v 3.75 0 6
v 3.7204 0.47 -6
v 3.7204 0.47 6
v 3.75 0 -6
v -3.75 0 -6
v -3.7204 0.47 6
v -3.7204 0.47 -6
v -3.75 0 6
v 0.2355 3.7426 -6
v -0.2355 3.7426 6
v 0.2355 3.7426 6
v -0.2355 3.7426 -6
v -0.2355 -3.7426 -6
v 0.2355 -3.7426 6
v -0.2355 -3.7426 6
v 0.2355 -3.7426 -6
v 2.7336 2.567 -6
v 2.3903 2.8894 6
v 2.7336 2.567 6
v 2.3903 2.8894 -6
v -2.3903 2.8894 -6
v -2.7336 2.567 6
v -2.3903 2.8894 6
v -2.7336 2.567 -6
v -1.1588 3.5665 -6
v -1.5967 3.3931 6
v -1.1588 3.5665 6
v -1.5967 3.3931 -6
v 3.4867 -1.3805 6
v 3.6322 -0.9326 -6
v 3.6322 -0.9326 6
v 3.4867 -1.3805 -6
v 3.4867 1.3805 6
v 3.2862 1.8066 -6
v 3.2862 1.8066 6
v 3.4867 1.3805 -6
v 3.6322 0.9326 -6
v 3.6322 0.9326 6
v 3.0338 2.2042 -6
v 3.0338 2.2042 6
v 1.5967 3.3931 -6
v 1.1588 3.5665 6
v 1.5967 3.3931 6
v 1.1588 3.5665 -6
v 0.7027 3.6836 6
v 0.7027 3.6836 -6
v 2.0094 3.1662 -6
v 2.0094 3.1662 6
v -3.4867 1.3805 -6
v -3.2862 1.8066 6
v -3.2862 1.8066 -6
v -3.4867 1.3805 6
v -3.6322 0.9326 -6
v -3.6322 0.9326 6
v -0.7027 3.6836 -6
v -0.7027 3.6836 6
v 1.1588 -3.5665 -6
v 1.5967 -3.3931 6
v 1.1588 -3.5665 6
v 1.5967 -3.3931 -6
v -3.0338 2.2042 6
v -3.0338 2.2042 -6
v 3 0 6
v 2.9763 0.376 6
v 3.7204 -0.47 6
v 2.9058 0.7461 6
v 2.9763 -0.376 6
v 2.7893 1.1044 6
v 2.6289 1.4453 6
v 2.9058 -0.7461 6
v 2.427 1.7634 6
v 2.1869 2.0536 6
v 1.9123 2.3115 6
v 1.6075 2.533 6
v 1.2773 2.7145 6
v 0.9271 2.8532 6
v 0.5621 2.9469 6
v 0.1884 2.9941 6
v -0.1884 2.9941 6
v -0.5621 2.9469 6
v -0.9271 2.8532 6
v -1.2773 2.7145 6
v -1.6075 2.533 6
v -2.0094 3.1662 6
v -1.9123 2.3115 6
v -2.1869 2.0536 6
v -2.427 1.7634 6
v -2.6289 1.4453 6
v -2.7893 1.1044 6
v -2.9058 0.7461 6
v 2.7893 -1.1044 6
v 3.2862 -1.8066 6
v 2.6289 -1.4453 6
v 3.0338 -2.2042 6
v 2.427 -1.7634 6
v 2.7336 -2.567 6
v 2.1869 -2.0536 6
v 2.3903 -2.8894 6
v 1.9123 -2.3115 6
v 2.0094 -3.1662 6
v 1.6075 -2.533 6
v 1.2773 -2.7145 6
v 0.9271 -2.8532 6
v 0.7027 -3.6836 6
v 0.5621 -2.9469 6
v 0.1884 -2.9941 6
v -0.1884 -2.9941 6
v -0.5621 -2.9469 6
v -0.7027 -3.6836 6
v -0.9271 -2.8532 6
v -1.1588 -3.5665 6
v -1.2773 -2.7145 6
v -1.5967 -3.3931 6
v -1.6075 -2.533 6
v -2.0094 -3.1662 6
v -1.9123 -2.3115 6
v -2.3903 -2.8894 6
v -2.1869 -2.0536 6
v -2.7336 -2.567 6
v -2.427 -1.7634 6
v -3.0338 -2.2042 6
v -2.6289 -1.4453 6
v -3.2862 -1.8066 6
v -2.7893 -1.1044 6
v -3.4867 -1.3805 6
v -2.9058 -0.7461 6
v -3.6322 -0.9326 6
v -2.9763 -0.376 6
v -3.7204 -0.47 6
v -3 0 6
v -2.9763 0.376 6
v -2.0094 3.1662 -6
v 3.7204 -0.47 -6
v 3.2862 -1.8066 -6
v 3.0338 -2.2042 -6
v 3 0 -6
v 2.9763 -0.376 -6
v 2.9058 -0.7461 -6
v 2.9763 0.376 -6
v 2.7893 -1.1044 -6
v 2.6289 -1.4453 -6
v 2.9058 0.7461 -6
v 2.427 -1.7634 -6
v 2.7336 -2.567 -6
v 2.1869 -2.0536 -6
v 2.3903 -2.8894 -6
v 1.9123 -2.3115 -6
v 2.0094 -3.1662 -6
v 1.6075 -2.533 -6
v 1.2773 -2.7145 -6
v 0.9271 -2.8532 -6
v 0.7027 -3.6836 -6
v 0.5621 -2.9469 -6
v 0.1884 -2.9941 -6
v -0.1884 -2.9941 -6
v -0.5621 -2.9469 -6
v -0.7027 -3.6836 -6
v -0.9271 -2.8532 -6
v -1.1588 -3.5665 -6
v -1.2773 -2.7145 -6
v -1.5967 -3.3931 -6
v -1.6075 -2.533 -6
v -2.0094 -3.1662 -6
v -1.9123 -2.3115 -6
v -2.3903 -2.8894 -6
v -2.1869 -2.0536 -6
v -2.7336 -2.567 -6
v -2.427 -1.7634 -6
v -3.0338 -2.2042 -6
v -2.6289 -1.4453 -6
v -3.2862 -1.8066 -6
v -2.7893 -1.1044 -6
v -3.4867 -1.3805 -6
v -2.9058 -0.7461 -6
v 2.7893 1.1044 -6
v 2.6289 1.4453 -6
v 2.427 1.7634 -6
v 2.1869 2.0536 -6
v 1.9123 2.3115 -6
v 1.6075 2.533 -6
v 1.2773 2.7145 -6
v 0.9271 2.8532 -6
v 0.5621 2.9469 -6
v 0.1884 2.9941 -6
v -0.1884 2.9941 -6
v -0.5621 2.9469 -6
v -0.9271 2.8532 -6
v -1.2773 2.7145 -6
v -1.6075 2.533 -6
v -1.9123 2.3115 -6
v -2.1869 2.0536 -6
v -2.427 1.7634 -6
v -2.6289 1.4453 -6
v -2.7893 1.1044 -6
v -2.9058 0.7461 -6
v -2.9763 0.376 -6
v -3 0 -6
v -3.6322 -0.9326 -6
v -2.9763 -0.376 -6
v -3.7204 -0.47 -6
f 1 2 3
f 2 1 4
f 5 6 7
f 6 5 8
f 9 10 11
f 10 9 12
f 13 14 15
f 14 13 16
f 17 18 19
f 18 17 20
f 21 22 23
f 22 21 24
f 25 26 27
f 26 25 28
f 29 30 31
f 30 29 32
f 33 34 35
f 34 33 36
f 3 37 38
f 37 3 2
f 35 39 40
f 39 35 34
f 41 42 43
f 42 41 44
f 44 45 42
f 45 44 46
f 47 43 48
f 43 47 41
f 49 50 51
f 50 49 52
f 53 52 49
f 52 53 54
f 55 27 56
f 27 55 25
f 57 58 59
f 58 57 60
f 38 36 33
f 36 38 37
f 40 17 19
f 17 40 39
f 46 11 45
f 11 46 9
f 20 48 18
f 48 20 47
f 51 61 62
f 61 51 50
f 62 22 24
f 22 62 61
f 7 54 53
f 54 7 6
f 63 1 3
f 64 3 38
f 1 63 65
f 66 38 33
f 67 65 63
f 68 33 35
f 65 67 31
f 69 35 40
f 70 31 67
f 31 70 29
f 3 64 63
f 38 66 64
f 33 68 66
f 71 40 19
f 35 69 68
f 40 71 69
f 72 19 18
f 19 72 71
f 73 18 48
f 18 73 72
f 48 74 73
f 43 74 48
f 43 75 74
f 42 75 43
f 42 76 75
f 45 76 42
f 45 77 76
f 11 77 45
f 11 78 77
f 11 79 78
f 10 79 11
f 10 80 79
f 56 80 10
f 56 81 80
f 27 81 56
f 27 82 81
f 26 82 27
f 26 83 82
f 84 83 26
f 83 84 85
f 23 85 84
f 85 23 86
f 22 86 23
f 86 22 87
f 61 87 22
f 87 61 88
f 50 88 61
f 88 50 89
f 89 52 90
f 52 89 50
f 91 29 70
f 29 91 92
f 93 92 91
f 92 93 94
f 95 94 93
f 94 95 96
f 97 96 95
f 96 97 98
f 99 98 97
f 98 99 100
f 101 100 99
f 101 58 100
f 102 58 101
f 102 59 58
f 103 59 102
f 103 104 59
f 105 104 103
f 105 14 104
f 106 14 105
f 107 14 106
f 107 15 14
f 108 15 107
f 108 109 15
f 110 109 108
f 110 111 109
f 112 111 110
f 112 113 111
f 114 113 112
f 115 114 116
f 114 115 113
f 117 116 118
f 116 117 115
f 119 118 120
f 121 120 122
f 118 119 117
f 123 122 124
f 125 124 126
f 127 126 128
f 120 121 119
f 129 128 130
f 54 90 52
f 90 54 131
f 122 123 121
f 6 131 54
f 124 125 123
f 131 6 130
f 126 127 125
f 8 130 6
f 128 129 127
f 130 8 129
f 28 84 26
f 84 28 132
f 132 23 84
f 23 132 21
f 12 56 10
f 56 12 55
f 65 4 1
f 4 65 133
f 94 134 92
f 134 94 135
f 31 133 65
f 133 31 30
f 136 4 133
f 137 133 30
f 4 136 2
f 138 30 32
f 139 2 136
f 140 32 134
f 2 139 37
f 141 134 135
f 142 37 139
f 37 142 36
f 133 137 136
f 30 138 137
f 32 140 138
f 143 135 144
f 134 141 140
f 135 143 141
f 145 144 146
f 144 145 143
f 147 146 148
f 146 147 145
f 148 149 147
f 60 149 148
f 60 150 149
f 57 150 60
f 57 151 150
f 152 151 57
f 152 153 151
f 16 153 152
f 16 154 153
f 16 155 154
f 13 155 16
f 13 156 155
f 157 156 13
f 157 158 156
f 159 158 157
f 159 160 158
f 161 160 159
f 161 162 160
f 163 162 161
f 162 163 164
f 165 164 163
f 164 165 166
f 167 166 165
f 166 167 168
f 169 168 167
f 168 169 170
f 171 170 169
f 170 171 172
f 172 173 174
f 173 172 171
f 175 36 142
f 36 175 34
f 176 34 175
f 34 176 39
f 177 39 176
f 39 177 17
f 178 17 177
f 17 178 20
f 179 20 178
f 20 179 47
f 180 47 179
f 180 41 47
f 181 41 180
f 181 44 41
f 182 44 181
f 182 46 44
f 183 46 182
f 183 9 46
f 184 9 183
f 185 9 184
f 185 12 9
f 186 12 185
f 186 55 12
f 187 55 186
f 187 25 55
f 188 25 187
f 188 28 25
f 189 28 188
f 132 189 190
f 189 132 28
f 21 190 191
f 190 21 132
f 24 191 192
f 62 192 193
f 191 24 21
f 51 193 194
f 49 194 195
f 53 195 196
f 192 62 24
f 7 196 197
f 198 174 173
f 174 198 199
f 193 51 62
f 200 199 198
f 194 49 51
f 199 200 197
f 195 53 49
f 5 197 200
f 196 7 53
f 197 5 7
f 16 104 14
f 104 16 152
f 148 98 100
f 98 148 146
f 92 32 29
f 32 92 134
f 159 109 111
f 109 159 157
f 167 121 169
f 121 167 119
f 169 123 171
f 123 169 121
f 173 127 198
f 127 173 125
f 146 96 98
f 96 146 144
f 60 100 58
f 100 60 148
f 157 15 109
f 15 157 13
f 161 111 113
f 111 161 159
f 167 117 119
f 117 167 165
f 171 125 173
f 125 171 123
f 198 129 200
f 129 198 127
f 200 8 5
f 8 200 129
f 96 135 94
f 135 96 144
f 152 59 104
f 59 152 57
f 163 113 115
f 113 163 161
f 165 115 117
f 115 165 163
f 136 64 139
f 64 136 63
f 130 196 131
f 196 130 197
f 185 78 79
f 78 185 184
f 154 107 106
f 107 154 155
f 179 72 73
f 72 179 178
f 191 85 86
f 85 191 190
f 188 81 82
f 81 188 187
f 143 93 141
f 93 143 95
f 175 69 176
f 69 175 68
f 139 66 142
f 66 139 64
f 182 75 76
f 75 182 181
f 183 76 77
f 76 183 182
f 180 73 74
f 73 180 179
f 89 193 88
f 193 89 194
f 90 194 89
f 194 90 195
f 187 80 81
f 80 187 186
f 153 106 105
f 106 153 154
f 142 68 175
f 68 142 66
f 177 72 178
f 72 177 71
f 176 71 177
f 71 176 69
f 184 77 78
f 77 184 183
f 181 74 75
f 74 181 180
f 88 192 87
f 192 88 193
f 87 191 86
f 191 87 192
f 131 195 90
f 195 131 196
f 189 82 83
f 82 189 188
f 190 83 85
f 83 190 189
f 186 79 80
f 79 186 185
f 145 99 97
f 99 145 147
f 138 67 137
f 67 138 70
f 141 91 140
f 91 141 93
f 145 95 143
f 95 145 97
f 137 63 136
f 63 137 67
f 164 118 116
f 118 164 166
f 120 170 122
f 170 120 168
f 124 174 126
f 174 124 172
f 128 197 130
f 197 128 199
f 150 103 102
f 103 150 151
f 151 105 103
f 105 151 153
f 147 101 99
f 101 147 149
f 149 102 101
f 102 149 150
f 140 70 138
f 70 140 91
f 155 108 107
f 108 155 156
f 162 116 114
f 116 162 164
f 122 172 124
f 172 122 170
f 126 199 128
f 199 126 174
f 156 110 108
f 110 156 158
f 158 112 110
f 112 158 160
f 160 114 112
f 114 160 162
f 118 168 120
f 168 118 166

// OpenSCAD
$fn = 50;


difference() {
	union() {
		translate(v = [0, 0, -6.0000000000]) {
			cylinder(h = 12, r = 3.7500000000);
		}
	}
	union() {
		translate(v = [0, 0, -100.0000000000]) {
			cylinder(h = 200, r = 3.0000000000);
		}
	}
}
